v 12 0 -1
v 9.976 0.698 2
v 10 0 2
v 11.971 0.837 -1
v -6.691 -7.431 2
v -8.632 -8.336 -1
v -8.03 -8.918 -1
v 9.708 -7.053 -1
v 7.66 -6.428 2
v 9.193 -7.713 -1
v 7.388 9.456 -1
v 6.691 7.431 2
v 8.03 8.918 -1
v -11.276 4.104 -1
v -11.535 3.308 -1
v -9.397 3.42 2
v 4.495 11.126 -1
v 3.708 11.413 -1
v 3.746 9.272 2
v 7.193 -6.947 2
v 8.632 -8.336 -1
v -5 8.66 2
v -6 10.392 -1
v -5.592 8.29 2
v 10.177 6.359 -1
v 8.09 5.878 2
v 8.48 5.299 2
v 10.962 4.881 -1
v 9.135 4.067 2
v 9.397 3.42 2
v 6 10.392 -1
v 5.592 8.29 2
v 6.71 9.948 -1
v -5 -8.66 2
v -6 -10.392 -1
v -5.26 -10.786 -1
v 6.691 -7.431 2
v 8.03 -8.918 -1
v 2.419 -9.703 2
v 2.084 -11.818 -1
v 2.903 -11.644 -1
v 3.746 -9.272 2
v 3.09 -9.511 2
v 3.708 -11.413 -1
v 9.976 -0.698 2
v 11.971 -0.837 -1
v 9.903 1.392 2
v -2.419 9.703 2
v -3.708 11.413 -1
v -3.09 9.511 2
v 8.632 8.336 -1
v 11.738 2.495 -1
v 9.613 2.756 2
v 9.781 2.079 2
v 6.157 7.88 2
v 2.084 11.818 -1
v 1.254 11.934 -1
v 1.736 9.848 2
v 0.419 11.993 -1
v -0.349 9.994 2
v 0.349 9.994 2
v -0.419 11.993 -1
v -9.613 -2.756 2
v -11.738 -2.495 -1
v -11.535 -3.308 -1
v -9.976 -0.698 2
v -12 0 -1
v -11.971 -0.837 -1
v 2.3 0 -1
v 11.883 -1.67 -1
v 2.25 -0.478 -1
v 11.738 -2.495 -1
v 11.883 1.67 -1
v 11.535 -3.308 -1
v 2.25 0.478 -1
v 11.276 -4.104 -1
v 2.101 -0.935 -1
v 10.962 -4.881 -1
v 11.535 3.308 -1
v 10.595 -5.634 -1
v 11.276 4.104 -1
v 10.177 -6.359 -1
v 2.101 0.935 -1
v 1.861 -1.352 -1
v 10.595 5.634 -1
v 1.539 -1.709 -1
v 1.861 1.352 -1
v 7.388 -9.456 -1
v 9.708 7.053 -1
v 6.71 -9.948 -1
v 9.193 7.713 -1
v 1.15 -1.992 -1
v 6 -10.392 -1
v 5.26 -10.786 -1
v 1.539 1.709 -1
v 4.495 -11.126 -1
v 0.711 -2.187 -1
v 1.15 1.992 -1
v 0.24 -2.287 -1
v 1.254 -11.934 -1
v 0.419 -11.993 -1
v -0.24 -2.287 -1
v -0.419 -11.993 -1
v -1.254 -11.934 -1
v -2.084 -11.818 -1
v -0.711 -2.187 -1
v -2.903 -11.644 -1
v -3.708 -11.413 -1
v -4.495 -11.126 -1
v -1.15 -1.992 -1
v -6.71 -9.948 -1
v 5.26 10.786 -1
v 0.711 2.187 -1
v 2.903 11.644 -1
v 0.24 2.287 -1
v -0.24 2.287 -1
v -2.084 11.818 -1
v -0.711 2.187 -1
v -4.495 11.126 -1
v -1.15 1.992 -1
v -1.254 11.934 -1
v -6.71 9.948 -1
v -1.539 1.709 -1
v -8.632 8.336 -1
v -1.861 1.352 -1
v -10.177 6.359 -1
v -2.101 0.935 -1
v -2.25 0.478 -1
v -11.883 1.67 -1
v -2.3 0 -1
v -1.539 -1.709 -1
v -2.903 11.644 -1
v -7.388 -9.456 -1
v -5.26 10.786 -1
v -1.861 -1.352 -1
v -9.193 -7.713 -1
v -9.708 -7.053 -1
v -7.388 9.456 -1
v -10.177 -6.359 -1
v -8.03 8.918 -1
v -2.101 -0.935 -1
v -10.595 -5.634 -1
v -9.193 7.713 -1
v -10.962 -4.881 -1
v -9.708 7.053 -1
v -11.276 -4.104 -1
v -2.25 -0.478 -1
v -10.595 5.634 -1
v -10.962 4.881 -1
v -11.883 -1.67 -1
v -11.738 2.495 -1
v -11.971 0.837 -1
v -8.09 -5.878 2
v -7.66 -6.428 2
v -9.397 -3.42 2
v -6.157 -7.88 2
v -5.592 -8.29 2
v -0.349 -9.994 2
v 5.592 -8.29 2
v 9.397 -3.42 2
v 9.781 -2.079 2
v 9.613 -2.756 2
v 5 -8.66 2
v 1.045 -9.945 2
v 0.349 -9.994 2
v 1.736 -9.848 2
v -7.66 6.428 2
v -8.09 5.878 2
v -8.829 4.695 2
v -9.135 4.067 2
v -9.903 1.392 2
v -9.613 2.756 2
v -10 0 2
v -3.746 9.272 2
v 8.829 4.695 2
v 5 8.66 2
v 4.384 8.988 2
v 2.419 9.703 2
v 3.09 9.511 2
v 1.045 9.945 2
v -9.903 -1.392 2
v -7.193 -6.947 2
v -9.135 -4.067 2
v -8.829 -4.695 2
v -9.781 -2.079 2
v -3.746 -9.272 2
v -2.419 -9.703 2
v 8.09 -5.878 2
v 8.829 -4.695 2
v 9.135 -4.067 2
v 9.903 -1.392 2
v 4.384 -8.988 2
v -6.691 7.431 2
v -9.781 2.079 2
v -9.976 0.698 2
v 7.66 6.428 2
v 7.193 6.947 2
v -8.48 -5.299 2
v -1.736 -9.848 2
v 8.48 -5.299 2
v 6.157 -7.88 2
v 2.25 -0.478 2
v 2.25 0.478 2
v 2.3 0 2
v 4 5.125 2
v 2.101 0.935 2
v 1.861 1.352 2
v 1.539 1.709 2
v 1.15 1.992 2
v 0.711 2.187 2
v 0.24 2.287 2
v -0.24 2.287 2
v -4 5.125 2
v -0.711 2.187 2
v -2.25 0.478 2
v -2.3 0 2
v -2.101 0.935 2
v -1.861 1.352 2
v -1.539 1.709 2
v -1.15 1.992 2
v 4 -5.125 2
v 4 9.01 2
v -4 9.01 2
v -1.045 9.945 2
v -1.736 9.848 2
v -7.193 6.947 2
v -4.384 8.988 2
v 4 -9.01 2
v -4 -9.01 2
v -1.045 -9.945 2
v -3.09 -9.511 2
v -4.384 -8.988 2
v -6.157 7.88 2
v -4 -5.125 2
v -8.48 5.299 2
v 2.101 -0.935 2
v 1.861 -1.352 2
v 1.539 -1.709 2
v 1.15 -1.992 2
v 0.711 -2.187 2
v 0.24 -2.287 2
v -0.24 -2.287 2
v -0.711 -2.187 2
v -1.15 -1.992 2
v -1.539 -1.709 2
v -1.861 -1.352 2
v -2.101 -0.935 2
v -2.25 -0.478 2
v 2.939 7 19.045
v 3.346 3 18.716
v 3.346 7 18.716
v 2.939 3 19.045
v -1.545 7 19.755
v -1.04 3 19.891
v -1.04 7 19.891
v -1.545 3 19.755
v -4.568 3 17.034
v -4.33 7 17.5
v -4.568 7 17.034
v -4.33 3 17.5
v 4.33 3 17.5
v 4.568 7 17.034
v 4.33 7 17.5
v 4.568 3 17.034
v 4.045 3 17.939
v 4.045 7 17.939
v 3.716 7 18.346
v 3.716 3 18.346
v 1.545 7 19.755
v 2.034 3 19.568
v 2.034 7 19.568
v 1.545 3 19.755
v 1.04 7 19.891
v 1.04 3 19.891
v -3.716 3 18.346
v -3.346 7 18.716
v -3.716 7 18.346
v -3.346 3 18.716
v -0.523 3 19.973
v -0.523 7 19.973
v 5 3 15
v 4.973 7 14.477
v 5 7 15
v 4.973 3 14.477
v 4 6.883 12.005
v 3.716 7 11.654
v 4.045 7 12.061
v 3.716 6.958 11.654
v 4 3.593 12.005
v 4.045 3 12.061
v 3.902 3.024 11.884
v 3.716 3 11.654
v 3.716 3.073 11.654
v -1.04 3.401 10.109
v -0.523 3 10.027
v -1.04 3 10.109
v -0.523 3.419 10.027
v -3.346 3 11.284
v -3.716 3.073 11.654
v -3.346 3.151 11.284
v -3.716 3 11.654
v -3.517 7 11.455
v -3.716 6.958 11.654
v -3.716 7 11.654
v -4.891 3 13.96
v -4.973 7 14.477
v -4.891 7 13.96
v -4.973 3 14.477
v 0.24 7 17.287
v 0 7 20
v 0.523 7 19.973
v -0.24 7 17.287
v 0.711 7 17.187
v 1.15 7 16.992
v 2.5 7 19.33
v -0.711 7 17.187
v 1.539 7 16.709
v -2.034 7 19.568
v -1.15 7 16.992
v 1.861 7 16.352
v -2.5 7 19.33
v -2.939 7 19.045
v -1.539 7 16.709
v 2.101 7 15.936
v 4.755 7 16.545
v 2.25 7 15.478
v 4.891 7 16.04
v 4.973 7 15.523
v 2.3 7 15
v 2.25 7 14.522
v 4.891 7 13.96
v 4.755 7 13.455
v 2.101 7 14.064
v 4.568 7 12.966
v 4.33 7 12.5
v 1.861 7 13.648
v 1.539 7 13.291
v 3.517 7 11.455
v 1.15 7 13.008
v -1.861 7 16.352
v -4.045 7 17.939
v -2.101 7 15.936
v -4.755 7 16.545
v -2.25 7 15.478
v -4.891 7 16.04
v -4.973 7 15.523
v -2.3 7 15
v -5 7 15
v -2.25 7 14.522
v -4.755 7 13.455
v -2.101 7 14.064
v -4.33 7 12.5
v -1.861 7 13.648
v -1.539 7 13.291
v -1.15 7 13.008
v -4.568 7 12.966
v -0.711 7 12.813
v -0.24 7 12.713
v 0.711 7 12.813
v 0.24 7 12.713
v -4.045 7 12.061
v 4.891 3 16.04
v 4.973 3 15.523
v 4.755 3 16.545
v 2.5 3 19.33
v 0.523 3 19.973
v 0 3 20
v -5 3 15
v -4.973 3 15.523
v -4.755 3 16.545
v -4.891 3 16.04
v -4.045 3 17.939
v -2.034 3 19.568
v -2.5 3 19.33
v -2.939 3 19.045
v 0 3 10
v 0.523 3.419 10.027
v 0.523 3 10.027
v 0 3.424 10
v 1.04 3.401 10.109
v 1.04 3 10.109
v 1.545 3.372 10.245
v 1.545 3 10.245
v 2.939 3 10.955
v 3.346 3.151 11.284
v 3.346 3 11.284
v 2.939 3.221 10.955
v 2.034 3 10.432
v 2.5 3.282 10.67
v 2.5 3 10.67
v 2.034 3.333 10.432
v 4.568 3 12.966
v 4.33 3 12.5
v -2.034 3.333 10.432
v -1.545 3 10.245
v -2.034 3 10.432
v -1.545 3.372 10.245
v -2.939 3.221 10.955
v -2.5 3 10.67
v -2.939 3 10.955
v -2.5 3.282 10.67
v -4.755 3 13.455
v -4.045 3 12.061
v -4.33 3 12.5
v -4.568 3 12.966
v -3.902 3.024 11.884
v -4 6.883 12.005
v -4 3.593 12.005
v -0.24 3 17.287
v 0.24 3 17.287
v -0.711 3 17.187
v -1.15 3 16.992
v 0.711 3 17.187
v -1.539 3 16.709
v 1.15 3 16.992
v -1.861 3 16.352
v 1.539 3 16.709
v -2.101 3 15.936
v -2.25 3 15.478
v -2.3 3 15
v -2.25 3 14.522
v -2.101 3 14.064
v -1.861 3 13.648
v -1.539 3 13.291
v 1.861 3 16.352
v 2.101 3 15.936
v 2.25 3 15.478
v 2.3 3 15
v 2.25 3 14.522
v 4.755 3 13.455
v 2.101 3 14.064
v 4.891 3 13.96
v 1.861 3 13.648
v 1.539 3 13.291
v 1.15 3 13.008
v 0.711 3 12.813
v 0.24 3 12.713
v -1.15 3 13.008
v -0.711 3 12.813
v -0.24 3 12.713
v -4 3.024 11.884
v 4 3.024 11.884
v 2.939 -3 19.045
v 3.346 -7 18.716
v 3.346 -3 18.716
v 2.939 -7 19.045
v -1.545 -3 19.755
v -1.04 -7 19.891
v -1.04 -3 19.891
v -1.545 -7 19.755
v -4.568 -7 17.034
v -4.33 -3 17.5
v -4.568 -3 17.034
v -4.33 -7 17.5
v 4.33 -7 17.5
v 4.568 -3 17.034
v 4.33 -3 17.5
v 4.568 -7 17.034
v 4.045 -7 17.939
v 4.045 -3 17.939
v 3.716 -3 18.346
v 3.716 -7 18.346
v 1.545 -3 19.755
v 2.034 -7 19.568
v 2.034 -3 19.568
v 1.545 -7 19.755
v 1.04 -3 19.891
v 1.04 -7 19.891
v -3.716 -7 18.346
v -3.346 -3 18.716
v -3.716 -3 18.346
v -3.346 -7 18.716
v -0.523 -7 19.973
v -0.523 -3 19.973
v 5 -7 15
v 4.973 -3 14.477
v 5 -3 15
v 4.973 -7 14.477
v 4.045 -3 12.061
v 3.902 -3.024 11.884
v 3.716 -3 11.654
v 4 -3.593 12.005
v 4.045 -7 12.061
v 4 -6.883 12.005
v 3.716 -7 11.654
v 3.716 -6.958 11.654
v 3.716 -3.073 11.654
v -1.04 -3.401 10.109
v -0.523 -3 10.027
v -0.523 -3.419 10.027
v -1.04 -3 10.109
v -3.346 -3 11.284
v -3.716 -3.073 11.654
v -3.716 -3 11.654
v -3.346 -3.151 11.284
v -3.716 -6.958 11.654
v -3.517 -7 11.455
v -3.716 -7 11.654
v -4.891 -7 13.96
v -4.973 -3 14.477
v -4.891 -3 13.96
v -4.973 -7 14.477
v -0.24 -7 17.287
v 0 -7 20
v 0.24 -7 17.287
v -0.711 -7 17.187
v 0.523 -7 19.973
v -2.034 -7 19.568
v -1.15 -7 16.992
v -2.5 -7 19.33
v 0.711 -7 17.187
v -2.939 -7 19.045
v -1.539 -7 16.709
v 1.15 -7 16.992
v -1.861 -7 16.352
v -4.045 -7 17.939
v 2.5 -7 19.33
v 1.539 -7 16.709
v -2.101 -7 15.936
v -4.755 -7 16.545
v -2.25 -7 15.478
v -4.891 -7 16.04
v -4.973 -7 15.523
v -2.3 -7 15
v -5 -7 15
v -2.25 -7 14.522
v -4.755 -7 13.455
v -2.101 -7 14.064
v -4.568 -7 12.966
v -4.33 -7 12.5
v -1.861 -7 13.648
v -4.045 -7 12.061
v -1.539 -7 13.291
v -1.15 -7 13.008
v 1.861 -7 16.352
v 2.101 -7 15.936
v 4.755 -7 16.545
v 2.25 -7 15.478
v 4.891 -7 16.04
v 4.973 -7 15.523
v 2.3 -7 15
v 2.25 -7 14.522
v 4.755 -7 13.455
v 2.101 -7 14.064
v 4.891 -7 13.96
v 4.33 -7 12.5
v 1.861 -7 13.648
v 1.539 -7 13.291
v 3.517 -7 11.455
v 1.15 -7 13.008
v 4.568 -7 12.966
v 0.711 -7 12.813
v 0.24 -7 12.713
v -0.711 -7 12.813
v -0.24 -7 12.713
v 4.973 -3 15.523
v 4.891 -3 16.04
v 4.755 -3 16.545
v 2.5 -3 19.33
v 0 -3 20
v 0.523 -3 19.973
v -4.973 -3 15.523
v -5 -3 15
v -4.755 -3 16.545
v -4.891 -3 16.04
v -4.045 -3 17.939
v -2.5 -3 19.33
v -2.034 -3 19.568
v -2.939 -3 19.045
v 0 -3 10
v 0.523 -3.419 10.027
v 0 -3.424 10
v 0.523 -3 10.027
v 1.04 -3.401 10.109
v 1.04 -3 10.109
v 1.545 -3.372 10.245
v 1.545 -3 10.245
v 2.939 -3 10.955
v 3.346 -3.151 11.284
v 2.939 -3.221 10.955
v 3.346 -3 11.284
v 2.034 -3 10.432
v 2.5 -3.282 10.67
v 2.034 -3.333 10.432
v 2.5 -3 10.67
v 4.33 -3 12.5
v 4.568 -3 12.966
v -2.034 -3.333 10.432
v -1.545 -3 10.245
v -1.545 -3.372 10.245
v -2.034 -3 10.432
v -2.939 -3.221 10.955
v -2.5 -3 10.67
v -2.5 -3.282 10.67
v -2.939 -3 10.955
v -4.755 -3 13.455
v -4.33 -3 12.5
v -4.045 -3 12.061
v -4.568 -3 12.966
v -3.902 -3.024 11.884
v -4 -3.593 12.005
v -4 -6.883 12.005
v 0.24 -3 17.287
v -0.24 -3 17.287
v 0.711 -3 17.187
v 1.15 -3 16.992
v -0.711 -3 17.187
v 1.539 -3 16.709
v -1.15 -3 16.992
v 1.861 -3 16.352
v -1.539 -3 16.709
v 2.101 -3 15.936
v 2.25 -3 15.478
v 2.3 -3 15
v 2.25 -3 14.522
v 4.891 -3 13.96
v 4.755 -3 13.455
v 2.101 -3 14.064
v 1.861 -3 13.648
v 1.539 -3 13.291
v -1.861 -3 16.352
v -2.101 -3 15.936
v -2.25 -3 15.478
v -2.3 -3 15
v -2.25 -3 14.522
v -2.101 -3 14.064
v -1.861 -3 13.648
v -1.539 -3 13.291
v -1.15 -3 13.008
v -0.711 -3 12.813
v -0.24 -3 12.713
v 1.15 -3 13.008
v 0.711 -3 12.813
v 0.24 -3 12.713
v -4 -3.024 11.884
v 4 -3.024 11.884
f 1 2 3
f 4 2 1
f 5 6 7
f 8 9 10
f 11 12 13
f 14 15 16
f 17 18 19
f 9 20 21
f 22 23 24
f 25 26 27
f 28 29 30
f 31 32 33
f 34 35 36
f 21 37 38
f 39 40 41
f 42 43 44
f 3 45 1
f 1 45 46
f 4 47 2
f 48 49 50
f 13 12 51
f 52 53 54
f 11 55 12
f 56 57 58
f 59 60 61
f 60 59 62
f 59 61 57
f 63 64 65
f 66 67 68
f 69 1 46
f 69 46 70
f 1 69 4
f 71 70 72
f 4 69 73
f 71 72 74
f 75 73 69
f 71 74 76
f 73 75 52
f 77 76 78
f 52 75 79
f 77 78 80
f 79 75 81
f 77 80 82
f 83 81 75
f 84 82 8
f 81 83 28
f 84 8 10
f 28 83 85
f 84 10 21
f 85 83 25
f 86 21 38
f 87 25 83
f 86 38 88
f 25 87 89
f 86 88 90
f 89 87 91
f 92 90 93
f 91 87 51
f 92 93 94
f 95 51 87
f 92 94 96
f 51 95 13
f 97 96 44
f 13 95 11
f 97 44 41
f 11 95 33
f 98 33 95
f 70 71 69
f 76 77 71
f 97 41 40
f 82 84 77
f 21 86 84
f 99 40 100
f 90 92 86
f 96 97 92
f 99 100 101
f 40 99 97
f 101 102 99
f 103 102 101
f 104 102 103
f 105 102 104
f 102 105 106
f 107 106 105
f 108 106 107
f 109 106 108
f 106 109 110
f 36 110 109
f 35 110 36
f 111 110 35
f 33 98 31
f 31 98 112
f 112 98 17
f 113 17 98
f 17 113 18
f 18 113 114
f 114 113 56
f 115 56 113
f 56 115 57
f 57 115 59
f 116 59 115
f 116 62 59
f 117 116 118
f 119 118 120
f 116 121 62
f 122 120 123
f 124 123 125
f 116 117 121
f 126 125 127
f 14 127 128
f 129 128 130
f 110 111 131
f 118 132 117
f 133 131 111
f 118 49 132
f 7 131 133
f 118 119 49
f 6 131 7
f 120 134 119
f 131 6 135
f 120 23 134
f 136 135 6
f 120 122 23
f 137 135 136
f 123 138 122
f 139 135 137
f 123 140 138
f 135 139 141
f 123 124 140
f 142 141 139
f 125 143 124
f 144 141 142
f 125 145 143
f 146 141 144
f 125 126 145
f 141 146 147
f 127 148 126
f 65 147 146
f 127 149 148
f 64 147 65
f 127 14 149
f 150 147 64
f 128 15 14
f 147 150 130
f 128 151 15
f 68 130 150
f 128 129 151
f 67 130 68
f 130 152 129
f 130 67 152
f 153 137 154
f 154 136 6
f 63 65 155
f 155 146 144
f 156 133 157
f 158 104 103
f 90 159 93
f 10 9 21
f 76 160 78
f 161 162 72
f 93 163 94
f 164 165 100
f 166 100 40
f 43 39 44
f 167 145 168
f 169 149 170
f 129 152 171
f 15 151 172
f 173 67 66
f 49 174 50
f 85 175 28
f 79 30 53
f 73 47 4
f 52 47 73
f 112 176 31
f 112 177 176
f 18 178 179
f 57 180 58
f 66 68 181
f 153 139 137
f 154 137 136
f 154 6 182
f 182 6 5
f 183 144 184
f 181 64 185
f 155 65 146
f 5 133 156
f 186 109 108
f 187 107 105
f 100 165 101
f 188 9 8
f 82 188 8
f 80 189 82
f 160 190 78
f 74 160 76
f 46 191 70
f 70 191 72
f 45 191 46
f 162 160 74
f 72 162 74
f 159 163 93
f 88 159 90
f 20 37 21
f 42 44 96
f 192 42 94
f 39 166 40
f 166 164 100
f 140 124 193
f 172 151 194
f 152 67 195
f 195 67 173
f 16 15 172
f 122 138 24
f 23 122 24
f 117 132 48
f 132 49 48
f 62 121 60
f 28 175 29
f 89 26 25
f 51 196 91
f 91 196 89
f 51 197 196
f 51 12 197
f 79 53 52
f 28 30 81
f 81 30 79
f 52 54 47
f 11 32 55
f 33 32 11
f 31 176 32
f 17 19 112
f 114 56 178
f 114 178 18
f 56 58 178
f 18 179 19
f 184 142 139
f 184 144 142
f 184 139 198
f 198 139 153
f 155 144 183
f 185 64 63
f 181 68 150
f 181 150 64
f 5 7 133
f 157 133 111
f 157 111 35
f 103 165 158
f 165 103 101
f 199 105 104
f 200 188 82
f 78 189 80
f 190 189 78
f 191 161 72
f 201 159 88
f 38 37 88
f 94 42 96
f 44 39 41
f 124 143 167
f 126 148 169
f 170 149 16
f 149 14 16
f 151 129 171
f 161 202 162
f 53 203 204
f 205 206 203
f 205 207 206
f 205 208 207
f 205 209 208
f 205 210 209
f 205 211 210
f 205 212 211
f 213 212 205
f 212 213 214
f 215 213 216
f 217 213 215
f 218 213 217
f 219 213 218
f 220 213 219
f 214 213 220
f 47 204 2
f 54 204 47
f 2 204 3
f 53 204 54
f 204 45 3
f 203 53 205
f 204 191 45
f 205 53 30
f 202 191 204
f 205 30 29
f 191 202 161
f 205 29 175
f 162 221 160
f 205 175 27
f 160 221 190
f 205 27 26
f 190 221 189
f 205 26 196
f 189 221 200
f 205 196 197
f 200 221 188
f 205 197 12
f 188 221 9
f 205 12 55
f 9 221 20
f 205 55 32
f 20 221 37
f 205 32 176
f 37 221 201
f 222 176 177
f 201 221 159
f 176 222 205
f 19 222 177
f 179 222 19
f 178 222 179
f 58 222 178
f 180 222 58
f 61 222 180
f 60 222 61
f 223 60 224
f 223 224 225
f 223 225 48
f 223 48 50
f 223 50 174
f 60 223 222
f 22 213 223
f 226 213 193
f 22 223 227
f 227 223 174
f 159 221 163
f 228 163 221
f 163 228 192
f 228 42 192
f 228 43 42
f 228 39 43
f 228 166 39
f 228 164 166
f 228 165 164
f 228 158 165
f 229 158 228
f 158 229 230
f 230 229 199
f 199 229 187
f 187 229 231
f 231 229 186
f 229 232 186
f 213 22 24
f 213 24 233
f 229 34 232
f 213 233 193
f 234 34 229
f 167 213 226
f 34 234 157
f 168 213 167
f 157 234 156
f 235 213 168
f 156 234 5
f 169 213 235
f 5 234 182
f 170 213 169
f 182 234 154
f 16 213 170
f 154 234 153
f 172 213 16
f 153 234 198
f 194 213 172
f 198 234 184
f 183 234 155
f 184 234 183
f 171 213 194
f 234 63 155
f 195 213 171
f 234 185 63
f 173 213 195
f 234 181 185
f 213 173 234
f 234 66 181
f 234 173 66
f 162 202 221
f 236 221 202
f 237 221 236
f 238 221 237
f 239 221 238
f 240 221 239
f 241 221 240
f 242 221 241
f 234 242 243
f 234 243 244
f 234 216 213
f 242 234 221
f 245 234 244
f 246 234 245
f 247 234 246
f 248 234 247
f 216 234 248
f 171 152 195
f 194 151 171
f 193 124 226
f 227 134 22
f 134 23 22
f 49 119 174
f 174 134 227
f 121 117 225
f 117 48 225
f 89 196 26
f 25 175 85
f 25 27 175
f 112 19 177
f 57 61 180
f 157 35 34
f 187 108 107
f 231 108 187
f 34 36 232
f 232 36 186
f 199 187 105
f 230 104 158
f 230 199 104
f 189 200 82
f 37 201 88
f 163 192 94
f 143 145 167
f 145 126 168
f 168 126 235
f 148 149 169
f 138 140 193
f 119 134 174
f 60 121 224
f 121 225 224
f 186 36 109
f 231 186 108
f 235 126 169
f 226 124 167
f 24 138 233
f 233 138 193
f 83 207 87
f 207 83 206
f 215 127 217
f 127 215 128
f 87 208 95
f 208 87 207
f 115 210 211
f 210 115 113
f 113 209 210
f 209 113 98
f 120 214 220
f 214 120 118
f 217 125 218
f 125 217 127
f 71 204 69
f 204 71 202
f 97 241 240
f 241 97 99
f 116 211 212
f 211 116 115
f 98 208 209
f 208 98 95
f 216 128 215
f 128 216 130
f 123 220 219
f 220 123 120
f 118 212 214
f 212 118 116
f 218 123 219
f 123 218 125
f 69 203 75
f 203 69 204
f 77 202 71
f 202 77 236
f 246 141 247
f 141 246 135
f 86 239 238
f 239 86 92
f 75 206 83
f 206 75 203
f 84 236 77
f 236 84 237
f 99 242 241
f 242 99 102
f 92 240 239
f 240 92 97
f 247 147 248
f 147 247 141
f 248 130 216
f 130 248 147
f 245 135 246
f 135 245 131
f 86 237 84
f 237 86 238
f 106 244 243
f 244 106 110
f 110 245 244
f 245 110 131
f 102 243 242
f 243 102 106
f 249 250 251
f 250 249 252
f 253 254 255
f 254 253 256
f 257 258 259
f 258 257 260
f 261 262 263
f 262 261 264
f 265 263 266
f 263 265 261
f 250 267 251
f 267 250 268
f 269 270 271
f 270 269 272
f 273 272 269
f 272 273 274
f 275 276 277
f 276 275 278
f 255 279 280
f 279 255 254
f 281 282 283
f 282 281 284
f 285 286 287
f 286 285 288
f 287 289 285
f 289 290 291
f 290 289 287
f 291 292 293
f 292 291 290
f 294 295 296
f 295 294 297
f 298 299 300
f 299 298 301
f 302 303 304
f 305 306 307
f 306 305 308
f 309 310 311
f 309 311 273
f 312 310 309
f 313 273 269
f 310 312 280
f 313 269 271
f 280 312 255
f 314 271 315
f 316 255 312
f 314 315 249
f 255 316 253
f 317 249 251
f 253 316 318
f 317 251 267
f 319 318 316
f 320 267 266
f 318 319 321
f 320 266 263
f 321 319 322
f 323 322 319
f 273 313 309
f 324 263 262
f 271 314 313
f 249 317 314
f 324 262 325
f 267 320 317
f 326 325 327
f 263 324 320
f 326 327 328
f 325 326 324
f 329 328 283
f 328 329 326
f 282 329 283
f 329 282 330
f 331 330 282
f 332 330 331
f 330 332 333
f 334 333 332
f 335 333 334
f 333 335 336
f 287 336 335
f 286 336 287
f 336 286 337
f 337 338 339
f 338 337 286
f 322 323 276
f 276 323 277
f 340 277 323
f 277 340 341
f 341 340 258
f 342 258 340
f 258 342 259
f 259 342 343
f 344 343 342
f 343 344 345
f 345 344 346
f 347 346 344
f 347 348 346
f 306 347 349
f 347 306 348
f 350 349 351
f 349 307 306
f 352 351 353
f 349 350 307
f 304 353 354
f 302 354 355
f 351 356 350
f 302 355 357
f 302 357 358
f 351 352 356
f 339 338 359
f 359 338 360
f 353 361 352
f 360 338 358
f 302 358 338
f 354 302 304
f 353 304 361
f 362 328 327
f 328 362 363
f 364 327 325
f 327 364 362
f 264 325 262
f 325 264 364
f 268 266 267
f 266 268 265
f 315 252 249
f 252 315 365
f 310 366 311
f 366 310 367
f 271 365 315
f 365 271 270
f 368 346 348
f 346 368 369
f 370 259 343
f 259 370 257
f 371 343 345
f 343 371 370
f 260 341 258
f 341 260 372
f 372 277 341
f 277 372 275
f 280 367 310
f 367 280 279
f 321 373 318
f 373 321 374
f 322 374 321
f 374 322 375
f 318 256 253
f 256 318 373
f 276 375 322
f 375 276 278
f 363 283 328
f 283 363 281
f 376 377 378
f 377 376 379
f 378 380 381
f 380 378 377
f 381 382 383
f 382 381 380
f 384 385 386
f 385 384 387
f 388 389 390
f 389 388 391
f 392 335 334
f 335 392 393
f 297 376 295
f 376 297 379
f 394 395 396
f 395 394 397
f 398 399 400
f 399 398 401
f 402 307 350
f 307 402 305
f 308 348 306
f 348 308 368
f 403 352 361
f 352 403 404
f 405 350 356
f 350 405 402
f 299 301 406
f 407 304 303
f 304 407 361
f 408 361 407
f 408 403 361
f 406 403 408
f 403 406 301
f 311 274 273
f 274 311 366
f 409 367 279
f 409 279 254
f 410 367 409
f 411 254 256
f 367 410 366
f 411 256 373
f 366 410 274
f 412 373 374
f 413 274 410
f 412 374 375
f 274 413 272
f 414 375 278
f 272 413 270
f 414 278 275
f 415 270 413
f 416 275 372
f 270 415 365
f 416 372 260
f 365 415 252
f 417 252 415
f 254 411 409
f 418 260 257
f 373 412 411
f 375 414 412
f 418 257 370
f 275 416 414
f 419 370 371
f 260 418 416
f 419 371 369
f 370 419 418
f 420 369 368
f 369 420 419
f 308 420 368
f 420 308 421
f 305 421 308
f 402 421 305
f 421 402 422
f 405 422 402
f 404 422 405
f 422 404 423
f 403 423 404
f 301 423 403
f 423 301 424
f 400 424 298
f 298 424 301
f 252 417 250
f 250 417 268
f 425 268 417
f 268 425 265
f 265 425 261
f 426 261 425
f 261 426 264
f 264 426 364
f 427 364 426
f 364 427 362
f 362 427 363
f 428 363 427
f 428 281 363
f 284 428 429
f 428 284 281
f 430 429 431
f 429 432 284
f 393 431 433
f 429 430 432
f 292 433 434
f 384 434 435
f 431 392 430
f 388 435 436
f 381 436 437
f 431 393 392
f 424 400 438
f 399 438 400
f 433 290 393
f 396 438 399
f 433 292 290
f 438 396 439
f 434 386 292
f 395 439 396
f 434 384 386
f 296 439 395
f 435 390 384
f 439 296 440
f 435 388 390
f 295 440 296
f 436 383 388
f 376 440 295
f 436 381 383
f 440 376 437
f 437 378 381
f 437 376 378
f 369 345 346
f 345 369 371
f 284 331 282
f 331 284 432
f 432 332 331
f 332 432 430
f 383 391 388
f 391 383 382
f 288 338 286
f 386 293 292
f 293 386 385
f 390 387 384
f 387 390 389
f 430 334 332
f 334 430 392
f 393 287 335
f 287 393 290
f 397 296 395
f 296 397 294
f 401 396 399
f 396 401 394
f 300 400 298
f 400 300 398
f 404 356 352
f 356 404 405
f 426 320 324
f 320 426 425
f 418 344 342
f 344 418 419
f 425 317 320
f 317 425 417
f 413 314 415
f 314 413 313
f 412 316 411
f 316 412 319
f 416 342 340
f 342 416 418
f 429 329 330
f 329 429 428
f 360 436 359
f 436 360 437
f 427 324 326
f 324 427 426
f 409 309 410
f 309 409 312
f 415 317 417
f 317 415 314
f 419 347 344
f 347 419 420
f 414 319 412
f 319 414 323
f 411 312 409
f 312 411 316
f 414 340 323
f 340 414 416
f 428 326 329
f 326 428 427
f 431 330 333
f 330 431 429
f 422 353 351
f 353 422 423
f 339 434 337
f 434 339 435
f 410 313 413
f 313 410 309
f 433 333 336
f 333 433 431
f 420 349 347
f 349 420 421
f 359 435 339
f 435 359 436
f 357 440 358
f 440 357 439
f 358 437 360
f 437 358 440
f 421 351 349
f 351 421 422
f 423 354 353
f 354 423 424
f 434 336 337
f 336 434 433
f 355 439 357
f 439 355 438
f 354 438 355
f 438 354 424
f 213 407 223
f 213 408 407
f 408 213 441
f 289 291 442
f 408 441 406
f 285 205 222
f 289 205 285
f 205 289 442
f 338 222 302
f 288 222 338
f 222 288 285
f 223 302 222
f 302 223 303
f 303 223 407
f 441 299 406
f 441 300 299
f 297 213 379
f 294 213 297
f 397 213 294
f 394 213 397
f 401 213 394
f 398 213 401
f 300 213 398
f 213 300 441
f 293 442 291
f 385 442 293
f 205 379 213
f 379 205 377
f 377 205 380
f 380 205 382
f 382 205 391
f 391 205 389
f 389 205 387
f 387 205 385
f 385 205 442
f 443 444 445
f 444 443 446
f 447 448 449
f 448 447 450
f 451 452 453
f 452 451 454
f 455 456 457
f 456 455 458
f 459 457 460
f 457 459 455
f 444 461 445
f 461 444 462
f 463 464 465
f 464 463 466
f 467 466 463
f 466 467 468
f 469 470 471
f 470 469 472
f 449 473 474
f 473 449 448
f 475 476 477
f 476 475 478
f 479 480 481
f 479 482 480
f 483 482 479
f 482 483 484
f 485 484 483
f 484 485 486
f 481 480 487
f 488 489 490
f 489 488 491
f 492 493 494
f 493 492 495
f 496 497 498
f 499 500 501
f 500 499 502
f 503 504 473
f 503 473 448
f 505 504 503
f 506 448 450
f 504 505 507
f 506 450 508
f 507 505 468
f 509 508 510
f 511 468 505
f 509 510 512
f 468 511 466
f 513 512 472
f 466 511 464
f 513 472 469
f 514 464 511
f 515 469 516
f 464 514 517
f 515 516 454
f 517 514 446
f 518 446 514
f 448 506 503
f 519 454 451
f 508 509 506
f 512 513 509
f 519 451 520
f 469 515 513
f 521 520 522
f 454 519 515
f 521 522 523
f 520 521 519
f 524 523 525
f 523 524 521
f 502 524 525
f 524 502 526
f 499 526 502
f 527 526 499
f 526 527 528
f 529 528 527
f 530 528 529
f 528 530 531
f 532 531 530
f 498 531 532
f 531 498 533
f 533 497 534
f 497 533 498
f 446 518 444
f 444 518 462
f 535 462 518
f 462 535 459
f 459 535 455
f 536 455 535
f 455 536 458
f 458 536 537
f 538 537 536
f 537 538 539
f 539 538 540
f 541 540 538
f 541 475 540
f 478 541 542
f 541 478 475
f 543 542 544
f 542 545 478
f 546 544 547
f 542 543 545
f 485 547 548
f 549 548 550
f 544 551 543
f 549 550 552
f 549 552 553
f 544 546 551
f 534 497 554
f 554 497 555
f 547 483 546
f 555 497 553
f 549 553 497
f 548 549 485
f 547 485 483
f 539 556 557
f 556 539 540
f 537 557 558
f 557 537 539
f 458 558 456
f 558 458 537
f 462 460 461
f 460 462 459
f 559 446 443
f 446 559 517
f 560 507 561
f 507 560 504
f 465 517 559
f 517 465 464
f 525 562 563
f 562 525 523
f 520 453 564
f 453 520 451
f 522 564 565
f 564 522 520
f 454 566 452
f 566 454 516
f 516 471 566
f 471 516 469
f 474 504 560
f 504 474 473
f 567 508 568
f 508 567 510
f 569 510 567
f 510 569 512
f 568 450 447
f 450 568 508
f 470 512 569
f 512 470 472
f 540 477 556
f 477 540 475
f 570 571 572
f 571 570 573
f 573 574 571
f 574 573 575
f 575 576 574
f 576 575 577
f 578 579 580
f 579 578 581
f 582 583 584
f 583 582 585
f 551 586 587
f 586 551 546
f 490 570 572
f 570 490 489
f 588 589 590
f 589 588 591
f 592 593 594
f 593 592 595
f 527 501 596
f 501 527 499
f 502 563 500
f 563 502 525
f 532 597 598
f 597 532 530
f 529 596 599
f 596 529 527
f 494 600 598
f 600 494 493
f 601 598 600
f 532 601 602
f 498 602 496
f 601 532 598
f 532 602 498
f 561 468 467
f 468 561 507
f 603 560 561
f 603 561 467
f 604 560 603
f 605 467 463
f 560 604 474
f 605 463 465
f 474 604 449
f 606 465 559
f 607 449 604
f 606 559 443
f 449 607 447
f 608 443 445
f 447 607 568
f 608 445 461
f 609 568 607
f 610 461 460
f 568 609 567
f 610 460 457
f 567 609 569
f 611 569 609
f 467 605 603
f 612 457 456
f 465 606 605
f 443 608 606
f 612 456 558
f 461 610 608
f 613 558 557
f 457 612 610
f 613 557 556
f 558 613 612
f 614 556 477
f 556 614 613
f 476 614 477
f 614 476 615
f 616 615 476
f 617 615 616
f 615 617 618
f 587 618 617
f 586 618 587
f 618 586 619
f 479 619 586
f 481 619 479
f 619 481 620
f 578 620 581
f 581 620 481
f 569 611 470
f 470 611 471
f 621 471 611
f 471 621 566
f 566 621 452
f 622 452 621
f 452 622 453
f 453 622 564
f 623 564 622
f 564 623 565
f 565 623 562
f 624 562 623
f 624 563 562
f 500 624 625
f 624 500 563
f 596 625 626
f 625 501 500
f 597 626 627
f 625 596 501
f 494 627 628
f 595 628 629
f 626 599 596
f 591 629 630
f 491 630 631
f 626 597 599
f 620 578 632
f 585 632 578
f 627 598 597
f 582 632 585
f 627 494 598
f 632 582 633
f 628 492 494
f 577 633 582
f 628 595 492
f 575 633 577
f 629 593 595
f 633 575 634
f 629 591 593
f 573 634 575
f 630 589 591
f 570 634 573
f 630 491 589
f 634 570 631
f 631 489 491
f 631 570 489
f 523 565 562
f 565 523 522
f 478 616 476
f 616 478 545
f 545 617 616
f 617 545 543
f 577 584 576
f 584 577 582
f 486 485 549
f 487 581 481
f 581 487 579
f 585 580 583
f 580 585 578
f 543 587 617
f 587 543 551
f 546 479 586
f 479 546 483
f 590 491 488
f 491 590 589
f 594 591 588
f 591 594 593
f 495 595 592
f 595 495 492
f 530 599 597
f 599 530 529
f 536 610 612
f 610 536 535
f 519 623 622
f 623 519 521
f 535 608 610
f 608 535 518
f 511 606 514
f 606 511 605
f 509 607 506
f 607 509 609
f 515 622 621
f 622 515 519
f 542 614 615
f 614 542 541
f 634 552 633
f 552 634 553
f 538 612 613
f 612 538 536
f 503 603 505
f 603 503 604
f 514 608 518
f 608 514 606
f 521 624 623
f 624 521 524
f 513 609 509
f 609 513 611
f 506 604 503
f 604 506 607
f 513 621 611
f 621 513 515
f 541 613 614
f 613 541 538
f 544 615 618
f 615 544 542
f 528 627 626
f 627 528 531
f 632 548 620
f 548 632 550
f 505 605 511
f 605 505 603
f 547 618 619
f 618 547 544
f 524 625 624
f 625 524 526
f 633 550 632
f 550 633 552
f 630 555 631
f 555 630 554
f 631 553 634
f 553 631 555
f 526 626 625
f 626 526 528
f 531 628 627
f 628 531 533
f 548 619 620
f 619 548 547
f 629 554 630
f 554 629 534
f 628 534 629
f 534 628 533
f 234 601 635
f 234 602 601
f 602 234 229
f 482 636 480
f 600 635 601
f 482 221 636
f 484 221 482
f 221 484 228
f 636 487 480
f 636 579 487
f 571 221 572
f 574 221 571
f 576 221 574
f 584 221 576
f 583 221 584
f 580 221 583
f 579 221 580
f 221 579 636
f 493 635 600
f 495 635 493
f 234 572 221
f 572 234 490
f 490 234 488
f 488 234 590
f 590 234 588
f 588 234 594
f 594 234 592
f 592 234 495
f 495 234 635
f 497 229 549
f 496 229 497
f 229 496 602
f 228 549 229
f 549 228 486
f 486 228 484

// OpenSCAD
// suitable for M4 bolts

module right_support(){

translate([0,7,15])
	rotate([90,0,0])
		difference() {
			cylinder(4,5,5, $fn=60);
			cylinder(4,2.3,2.3, $fn=30);
		}
translate([-4,5.55,0])
	rotate([12,0,0])
		cube([8,3.8,12.15]);

}

//bottom round section
translate([0,0,-1])
	rotate([0,0,0])
		difference() {
			cylinder(3,12,10, $fn=90);
			cylinder(4,2.3,2.3, $fn=30);
		}//difference

//right support
right_support();
//left support
mirror([0,1,0])
	right_support();
